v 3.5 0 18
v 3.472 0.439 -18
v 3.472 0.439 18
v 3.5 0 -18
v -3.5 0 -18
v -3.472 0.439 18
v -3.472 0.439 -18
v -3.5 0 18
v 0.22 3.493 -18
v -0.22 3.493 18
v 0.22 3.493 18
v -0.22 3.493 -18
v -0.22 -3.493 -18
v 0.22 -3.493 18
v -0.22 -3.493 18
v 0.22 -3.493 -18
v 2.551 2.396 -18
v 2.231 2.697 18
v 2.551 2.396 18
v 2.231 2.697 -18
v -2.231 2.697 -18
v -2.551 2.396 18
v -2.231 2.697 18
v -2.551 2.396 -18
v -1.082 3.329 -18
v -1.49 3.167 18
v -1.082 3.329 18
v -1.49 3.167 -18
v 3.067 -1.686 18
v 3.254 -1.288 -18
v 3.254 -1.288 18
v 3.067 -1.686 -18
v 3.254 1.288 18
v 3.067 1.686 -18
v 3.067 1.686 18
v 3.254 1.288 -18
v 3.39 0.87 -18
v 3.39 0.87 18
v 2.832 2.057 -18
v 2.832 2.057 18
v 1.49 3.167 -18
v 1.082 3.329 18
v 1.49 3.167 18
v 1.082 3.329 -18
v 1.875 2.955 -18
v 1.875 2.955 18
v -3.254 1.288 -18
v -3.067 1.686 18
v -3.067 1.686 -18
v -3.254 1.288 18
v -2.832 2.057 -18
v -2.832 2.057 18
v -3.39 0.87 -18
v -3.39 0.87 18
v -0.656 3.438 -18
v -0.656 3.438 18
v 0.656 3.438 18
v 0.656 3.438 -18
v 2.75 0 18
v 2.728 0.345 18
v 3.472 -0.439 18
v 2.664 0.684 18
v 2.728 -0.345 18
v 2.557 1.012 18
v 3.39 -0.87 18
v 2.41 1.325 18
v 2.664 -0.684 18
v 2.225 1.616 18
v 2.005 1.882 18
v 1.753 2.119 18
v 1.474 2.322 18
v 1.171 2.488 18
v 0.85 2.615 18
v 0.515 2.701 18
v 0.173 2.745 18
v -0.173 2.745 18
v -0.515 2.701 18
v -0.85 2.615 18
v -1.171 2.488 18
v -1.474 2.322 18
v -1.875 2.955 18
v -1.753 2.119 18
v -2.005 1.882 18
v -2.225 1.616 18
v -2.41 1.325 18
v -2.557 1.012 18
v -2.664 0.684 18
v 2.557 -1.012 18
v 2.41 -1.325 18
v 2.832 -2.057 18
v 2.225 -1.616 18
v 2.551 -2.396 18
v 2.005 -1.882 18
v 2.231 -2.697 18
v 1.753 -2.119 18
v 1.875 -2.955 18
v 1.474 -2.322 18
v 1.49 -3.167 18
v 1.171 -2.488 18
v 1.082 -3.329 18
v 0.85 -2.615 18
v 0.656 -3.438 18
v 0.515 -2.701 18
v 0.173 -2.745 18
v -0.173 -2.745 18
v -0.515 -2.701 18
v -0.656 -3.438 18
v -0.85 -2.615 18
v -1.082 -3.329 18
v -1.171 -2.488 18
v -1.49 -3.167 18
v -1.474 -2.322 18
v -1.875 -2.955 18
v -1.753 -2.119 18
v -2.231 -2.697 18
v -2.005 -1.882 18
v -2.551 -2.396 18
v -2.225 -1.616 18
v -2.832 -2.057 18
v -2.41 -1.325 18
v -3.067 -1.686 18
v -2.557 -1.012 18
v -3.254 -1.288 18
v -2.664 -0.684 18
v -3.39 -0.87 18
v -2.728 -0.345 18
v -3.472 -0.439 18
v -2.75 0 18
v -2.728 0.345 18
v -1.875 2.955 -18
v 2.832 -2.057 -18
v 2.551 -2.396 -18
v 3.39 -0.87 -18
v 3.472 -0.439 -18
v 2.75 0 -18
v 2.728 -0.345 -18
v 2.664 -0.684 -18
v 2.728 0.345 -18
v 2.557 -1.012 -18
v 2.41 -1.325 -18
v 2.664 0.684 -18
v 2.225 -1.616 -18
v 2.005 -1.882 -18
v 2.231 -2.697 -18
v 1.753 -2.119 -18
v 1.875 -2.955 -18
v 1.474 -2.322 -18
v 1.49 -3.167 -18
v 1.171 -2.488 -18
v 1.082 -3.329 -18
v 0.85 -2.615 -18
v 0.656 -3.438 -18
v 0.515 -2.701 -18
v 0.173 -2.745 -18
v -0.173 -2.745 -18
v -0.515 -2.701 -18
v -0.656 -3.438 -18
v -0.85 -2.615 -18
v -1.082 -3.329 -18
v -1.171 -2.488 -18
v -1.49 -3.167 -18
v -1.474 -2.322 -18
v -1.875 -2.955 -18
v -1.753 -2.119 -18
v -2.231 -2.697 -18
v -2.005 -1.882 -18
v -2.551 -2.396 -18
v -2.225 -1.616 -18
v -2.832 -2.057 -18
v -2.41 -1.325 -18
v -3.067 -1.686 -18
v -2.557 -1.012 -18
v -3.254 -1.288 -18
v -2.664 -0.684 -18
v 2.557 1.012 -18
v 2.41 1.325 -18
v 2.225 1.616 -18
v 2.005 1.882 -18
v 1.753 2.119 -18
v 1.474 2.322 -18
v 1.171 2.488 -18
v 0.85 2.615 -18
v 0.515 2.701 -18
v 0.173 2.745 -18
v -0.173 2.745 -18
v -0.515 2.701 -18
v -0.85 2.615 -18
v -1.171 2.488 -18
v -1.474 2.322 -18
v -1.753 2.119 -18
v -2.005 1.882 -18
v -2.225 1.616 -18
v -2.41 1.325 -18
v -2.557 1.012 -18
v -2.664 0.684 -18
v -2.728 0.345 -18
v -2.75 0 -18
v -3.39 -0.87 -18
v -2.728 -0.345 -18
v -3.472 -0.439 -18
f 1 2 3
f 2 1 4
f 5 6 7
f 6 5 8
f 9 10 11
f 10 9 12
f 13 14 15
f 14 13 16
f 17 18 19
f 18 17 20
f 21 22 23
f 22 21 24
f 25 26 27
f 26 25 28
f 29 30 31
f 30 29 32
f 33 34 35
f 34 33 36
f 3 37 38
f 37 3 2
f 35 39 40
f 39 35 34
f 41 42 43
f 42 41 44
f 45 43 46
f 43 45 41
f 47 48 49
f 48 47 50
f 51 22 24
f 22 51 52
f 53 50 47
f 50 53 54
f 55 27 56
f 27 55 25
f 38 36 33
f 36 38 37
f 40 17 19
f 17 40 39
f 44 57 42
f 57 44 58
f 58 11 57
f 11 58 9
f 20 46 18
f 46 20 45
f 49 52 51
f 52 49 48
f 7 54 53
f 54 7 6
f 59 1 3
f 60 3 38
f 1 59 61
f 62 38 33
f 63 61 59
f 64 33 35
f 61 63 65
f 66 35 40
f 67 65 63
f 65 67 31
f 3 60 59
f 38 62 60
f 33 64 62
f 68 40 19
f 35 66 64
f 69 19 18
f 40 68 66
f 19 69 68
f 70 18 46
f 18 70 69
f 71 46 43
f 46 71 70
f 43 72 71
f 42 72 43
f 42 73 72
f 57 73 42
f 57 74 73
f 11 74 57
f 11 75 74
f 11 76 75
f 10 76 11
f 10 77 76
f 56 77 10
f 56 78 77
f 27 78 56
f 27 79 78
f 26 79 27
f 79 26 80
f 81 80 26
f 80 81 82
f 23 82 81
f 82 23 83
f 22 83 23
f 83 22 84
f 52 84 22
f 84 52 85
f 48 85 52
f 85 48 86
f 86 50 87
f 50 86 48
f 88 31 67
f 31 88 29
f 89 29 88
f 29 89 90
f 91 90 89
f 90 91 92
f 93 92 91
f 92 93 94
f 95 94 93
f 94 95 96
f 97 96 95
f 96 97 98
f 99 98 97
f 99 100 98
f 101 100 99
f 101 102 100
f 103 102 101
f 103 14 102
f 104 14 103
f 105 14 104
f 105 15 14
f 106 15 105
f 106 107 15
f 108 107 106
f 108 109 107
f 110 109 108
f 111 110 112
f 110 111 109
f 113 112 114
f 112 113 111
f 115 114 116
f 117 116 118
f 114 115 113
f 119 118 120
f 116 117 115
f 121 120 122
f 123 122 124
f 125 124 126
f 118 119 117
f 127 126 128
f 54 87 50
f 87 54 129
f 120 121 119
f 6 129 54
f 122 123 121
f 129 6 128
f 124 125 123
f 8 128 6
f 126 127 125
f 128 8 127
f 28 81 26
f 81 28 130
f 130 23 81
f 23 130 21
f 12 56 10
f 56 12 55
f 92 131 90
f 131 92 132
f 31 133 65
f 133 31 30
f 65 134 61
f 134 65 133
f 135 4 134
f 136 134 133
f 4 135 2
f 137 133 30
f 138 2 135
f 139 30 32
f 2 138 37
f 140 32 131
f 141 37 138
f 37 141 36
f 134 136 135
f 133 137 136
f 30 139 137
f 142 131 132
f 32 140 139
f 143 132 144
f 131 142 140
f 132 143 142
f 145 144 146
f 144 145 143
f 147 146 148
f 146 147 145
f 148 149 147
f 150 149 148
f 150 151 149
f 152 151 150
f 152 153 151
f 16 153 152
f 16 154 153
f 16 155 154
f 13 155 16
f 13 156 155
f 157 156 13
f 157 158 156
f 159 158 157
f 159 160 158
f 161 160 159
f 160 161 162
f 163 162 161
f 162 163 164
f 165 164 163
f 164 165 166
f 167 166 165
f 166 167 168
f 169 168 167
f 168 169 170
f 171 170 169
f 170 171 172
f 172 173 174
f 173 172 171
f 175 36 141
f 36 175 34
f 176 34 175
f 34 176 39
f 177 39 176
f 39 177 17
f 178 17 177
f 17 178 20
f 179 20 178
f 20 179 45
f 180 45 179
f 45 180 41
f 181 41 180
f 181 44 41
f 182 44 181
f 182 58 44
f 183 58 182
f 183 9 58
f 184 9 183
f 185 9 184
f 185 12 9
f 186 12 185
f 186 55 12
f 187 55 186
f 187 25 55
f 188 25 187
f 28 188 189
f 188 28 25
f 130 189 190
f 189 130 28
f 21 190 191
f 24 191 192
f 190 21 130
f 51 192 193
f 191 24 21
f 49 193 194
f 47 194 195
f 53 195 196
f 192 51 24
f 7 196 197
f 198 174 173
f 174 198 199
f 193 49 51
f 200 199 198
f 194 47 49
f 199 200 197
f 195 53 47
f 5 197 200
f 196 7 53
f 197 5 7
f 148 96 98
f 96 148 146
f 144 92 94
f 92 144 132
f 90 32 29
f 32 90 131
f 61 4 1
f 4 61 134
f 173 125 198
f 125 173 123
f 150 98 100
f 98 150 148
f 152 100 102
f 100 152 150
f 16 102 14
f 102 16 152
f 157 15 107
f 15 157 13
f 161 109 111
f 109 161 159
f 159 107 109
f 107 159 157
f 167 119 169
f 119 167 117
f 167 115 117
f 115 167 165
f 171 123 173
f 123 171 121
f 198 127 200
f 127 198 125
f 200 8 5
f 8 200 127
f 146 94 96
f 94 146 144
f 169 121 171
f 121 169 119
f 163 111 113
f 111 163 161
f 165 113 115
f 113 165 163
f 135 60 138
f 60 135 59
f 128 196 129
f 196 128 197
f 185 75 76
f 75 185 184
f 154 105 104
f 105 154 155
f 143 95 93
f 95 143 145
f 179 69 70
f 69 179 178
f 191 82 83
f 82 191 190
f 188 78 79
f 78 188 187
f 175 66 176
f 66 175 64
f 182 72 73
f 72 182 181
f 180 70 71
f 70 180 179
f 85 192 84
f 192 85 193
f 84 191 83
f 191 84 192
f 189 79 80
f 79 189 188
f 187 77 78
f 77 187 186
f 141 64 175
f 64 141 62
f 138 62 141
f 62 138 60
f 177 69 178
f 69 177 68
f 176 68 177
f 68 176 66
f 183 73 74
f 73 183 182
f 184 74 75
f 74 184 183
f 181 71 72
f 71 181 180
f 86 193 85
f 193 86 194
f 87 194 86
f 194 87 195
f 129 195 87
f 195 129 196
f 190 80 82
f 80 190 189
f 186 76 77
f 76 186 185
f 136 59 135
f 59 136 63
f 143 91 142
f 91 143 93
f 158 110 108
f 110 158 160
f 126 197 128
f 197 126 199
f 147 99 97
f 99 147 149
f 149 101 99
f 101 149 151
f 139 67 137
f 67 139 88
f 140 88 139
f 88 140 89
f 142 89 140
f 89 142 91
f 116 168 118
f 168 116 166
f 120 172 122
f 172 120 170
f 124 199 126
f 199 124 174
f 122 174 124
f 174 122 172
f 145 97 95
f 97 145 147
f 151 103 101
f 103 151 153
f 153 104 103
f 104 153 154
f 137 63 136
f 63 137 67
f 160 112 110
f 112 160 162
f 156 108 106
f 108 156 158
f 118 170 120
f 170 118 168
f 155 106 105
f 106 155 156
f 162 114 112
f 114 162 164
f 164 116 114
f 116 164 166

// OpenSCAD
$fn = 50;


difference() {
	union() {
		translate(v = [0, 0, -18.0000000000]) {
			cylinder(h = 36, r = 3.5000000000);
		}
	}
	union() {
		translate(v = [0, 0, -100.0000000000]) {
			cylinder(h = 200, r = 2.7500000000);
		}
	}
}
